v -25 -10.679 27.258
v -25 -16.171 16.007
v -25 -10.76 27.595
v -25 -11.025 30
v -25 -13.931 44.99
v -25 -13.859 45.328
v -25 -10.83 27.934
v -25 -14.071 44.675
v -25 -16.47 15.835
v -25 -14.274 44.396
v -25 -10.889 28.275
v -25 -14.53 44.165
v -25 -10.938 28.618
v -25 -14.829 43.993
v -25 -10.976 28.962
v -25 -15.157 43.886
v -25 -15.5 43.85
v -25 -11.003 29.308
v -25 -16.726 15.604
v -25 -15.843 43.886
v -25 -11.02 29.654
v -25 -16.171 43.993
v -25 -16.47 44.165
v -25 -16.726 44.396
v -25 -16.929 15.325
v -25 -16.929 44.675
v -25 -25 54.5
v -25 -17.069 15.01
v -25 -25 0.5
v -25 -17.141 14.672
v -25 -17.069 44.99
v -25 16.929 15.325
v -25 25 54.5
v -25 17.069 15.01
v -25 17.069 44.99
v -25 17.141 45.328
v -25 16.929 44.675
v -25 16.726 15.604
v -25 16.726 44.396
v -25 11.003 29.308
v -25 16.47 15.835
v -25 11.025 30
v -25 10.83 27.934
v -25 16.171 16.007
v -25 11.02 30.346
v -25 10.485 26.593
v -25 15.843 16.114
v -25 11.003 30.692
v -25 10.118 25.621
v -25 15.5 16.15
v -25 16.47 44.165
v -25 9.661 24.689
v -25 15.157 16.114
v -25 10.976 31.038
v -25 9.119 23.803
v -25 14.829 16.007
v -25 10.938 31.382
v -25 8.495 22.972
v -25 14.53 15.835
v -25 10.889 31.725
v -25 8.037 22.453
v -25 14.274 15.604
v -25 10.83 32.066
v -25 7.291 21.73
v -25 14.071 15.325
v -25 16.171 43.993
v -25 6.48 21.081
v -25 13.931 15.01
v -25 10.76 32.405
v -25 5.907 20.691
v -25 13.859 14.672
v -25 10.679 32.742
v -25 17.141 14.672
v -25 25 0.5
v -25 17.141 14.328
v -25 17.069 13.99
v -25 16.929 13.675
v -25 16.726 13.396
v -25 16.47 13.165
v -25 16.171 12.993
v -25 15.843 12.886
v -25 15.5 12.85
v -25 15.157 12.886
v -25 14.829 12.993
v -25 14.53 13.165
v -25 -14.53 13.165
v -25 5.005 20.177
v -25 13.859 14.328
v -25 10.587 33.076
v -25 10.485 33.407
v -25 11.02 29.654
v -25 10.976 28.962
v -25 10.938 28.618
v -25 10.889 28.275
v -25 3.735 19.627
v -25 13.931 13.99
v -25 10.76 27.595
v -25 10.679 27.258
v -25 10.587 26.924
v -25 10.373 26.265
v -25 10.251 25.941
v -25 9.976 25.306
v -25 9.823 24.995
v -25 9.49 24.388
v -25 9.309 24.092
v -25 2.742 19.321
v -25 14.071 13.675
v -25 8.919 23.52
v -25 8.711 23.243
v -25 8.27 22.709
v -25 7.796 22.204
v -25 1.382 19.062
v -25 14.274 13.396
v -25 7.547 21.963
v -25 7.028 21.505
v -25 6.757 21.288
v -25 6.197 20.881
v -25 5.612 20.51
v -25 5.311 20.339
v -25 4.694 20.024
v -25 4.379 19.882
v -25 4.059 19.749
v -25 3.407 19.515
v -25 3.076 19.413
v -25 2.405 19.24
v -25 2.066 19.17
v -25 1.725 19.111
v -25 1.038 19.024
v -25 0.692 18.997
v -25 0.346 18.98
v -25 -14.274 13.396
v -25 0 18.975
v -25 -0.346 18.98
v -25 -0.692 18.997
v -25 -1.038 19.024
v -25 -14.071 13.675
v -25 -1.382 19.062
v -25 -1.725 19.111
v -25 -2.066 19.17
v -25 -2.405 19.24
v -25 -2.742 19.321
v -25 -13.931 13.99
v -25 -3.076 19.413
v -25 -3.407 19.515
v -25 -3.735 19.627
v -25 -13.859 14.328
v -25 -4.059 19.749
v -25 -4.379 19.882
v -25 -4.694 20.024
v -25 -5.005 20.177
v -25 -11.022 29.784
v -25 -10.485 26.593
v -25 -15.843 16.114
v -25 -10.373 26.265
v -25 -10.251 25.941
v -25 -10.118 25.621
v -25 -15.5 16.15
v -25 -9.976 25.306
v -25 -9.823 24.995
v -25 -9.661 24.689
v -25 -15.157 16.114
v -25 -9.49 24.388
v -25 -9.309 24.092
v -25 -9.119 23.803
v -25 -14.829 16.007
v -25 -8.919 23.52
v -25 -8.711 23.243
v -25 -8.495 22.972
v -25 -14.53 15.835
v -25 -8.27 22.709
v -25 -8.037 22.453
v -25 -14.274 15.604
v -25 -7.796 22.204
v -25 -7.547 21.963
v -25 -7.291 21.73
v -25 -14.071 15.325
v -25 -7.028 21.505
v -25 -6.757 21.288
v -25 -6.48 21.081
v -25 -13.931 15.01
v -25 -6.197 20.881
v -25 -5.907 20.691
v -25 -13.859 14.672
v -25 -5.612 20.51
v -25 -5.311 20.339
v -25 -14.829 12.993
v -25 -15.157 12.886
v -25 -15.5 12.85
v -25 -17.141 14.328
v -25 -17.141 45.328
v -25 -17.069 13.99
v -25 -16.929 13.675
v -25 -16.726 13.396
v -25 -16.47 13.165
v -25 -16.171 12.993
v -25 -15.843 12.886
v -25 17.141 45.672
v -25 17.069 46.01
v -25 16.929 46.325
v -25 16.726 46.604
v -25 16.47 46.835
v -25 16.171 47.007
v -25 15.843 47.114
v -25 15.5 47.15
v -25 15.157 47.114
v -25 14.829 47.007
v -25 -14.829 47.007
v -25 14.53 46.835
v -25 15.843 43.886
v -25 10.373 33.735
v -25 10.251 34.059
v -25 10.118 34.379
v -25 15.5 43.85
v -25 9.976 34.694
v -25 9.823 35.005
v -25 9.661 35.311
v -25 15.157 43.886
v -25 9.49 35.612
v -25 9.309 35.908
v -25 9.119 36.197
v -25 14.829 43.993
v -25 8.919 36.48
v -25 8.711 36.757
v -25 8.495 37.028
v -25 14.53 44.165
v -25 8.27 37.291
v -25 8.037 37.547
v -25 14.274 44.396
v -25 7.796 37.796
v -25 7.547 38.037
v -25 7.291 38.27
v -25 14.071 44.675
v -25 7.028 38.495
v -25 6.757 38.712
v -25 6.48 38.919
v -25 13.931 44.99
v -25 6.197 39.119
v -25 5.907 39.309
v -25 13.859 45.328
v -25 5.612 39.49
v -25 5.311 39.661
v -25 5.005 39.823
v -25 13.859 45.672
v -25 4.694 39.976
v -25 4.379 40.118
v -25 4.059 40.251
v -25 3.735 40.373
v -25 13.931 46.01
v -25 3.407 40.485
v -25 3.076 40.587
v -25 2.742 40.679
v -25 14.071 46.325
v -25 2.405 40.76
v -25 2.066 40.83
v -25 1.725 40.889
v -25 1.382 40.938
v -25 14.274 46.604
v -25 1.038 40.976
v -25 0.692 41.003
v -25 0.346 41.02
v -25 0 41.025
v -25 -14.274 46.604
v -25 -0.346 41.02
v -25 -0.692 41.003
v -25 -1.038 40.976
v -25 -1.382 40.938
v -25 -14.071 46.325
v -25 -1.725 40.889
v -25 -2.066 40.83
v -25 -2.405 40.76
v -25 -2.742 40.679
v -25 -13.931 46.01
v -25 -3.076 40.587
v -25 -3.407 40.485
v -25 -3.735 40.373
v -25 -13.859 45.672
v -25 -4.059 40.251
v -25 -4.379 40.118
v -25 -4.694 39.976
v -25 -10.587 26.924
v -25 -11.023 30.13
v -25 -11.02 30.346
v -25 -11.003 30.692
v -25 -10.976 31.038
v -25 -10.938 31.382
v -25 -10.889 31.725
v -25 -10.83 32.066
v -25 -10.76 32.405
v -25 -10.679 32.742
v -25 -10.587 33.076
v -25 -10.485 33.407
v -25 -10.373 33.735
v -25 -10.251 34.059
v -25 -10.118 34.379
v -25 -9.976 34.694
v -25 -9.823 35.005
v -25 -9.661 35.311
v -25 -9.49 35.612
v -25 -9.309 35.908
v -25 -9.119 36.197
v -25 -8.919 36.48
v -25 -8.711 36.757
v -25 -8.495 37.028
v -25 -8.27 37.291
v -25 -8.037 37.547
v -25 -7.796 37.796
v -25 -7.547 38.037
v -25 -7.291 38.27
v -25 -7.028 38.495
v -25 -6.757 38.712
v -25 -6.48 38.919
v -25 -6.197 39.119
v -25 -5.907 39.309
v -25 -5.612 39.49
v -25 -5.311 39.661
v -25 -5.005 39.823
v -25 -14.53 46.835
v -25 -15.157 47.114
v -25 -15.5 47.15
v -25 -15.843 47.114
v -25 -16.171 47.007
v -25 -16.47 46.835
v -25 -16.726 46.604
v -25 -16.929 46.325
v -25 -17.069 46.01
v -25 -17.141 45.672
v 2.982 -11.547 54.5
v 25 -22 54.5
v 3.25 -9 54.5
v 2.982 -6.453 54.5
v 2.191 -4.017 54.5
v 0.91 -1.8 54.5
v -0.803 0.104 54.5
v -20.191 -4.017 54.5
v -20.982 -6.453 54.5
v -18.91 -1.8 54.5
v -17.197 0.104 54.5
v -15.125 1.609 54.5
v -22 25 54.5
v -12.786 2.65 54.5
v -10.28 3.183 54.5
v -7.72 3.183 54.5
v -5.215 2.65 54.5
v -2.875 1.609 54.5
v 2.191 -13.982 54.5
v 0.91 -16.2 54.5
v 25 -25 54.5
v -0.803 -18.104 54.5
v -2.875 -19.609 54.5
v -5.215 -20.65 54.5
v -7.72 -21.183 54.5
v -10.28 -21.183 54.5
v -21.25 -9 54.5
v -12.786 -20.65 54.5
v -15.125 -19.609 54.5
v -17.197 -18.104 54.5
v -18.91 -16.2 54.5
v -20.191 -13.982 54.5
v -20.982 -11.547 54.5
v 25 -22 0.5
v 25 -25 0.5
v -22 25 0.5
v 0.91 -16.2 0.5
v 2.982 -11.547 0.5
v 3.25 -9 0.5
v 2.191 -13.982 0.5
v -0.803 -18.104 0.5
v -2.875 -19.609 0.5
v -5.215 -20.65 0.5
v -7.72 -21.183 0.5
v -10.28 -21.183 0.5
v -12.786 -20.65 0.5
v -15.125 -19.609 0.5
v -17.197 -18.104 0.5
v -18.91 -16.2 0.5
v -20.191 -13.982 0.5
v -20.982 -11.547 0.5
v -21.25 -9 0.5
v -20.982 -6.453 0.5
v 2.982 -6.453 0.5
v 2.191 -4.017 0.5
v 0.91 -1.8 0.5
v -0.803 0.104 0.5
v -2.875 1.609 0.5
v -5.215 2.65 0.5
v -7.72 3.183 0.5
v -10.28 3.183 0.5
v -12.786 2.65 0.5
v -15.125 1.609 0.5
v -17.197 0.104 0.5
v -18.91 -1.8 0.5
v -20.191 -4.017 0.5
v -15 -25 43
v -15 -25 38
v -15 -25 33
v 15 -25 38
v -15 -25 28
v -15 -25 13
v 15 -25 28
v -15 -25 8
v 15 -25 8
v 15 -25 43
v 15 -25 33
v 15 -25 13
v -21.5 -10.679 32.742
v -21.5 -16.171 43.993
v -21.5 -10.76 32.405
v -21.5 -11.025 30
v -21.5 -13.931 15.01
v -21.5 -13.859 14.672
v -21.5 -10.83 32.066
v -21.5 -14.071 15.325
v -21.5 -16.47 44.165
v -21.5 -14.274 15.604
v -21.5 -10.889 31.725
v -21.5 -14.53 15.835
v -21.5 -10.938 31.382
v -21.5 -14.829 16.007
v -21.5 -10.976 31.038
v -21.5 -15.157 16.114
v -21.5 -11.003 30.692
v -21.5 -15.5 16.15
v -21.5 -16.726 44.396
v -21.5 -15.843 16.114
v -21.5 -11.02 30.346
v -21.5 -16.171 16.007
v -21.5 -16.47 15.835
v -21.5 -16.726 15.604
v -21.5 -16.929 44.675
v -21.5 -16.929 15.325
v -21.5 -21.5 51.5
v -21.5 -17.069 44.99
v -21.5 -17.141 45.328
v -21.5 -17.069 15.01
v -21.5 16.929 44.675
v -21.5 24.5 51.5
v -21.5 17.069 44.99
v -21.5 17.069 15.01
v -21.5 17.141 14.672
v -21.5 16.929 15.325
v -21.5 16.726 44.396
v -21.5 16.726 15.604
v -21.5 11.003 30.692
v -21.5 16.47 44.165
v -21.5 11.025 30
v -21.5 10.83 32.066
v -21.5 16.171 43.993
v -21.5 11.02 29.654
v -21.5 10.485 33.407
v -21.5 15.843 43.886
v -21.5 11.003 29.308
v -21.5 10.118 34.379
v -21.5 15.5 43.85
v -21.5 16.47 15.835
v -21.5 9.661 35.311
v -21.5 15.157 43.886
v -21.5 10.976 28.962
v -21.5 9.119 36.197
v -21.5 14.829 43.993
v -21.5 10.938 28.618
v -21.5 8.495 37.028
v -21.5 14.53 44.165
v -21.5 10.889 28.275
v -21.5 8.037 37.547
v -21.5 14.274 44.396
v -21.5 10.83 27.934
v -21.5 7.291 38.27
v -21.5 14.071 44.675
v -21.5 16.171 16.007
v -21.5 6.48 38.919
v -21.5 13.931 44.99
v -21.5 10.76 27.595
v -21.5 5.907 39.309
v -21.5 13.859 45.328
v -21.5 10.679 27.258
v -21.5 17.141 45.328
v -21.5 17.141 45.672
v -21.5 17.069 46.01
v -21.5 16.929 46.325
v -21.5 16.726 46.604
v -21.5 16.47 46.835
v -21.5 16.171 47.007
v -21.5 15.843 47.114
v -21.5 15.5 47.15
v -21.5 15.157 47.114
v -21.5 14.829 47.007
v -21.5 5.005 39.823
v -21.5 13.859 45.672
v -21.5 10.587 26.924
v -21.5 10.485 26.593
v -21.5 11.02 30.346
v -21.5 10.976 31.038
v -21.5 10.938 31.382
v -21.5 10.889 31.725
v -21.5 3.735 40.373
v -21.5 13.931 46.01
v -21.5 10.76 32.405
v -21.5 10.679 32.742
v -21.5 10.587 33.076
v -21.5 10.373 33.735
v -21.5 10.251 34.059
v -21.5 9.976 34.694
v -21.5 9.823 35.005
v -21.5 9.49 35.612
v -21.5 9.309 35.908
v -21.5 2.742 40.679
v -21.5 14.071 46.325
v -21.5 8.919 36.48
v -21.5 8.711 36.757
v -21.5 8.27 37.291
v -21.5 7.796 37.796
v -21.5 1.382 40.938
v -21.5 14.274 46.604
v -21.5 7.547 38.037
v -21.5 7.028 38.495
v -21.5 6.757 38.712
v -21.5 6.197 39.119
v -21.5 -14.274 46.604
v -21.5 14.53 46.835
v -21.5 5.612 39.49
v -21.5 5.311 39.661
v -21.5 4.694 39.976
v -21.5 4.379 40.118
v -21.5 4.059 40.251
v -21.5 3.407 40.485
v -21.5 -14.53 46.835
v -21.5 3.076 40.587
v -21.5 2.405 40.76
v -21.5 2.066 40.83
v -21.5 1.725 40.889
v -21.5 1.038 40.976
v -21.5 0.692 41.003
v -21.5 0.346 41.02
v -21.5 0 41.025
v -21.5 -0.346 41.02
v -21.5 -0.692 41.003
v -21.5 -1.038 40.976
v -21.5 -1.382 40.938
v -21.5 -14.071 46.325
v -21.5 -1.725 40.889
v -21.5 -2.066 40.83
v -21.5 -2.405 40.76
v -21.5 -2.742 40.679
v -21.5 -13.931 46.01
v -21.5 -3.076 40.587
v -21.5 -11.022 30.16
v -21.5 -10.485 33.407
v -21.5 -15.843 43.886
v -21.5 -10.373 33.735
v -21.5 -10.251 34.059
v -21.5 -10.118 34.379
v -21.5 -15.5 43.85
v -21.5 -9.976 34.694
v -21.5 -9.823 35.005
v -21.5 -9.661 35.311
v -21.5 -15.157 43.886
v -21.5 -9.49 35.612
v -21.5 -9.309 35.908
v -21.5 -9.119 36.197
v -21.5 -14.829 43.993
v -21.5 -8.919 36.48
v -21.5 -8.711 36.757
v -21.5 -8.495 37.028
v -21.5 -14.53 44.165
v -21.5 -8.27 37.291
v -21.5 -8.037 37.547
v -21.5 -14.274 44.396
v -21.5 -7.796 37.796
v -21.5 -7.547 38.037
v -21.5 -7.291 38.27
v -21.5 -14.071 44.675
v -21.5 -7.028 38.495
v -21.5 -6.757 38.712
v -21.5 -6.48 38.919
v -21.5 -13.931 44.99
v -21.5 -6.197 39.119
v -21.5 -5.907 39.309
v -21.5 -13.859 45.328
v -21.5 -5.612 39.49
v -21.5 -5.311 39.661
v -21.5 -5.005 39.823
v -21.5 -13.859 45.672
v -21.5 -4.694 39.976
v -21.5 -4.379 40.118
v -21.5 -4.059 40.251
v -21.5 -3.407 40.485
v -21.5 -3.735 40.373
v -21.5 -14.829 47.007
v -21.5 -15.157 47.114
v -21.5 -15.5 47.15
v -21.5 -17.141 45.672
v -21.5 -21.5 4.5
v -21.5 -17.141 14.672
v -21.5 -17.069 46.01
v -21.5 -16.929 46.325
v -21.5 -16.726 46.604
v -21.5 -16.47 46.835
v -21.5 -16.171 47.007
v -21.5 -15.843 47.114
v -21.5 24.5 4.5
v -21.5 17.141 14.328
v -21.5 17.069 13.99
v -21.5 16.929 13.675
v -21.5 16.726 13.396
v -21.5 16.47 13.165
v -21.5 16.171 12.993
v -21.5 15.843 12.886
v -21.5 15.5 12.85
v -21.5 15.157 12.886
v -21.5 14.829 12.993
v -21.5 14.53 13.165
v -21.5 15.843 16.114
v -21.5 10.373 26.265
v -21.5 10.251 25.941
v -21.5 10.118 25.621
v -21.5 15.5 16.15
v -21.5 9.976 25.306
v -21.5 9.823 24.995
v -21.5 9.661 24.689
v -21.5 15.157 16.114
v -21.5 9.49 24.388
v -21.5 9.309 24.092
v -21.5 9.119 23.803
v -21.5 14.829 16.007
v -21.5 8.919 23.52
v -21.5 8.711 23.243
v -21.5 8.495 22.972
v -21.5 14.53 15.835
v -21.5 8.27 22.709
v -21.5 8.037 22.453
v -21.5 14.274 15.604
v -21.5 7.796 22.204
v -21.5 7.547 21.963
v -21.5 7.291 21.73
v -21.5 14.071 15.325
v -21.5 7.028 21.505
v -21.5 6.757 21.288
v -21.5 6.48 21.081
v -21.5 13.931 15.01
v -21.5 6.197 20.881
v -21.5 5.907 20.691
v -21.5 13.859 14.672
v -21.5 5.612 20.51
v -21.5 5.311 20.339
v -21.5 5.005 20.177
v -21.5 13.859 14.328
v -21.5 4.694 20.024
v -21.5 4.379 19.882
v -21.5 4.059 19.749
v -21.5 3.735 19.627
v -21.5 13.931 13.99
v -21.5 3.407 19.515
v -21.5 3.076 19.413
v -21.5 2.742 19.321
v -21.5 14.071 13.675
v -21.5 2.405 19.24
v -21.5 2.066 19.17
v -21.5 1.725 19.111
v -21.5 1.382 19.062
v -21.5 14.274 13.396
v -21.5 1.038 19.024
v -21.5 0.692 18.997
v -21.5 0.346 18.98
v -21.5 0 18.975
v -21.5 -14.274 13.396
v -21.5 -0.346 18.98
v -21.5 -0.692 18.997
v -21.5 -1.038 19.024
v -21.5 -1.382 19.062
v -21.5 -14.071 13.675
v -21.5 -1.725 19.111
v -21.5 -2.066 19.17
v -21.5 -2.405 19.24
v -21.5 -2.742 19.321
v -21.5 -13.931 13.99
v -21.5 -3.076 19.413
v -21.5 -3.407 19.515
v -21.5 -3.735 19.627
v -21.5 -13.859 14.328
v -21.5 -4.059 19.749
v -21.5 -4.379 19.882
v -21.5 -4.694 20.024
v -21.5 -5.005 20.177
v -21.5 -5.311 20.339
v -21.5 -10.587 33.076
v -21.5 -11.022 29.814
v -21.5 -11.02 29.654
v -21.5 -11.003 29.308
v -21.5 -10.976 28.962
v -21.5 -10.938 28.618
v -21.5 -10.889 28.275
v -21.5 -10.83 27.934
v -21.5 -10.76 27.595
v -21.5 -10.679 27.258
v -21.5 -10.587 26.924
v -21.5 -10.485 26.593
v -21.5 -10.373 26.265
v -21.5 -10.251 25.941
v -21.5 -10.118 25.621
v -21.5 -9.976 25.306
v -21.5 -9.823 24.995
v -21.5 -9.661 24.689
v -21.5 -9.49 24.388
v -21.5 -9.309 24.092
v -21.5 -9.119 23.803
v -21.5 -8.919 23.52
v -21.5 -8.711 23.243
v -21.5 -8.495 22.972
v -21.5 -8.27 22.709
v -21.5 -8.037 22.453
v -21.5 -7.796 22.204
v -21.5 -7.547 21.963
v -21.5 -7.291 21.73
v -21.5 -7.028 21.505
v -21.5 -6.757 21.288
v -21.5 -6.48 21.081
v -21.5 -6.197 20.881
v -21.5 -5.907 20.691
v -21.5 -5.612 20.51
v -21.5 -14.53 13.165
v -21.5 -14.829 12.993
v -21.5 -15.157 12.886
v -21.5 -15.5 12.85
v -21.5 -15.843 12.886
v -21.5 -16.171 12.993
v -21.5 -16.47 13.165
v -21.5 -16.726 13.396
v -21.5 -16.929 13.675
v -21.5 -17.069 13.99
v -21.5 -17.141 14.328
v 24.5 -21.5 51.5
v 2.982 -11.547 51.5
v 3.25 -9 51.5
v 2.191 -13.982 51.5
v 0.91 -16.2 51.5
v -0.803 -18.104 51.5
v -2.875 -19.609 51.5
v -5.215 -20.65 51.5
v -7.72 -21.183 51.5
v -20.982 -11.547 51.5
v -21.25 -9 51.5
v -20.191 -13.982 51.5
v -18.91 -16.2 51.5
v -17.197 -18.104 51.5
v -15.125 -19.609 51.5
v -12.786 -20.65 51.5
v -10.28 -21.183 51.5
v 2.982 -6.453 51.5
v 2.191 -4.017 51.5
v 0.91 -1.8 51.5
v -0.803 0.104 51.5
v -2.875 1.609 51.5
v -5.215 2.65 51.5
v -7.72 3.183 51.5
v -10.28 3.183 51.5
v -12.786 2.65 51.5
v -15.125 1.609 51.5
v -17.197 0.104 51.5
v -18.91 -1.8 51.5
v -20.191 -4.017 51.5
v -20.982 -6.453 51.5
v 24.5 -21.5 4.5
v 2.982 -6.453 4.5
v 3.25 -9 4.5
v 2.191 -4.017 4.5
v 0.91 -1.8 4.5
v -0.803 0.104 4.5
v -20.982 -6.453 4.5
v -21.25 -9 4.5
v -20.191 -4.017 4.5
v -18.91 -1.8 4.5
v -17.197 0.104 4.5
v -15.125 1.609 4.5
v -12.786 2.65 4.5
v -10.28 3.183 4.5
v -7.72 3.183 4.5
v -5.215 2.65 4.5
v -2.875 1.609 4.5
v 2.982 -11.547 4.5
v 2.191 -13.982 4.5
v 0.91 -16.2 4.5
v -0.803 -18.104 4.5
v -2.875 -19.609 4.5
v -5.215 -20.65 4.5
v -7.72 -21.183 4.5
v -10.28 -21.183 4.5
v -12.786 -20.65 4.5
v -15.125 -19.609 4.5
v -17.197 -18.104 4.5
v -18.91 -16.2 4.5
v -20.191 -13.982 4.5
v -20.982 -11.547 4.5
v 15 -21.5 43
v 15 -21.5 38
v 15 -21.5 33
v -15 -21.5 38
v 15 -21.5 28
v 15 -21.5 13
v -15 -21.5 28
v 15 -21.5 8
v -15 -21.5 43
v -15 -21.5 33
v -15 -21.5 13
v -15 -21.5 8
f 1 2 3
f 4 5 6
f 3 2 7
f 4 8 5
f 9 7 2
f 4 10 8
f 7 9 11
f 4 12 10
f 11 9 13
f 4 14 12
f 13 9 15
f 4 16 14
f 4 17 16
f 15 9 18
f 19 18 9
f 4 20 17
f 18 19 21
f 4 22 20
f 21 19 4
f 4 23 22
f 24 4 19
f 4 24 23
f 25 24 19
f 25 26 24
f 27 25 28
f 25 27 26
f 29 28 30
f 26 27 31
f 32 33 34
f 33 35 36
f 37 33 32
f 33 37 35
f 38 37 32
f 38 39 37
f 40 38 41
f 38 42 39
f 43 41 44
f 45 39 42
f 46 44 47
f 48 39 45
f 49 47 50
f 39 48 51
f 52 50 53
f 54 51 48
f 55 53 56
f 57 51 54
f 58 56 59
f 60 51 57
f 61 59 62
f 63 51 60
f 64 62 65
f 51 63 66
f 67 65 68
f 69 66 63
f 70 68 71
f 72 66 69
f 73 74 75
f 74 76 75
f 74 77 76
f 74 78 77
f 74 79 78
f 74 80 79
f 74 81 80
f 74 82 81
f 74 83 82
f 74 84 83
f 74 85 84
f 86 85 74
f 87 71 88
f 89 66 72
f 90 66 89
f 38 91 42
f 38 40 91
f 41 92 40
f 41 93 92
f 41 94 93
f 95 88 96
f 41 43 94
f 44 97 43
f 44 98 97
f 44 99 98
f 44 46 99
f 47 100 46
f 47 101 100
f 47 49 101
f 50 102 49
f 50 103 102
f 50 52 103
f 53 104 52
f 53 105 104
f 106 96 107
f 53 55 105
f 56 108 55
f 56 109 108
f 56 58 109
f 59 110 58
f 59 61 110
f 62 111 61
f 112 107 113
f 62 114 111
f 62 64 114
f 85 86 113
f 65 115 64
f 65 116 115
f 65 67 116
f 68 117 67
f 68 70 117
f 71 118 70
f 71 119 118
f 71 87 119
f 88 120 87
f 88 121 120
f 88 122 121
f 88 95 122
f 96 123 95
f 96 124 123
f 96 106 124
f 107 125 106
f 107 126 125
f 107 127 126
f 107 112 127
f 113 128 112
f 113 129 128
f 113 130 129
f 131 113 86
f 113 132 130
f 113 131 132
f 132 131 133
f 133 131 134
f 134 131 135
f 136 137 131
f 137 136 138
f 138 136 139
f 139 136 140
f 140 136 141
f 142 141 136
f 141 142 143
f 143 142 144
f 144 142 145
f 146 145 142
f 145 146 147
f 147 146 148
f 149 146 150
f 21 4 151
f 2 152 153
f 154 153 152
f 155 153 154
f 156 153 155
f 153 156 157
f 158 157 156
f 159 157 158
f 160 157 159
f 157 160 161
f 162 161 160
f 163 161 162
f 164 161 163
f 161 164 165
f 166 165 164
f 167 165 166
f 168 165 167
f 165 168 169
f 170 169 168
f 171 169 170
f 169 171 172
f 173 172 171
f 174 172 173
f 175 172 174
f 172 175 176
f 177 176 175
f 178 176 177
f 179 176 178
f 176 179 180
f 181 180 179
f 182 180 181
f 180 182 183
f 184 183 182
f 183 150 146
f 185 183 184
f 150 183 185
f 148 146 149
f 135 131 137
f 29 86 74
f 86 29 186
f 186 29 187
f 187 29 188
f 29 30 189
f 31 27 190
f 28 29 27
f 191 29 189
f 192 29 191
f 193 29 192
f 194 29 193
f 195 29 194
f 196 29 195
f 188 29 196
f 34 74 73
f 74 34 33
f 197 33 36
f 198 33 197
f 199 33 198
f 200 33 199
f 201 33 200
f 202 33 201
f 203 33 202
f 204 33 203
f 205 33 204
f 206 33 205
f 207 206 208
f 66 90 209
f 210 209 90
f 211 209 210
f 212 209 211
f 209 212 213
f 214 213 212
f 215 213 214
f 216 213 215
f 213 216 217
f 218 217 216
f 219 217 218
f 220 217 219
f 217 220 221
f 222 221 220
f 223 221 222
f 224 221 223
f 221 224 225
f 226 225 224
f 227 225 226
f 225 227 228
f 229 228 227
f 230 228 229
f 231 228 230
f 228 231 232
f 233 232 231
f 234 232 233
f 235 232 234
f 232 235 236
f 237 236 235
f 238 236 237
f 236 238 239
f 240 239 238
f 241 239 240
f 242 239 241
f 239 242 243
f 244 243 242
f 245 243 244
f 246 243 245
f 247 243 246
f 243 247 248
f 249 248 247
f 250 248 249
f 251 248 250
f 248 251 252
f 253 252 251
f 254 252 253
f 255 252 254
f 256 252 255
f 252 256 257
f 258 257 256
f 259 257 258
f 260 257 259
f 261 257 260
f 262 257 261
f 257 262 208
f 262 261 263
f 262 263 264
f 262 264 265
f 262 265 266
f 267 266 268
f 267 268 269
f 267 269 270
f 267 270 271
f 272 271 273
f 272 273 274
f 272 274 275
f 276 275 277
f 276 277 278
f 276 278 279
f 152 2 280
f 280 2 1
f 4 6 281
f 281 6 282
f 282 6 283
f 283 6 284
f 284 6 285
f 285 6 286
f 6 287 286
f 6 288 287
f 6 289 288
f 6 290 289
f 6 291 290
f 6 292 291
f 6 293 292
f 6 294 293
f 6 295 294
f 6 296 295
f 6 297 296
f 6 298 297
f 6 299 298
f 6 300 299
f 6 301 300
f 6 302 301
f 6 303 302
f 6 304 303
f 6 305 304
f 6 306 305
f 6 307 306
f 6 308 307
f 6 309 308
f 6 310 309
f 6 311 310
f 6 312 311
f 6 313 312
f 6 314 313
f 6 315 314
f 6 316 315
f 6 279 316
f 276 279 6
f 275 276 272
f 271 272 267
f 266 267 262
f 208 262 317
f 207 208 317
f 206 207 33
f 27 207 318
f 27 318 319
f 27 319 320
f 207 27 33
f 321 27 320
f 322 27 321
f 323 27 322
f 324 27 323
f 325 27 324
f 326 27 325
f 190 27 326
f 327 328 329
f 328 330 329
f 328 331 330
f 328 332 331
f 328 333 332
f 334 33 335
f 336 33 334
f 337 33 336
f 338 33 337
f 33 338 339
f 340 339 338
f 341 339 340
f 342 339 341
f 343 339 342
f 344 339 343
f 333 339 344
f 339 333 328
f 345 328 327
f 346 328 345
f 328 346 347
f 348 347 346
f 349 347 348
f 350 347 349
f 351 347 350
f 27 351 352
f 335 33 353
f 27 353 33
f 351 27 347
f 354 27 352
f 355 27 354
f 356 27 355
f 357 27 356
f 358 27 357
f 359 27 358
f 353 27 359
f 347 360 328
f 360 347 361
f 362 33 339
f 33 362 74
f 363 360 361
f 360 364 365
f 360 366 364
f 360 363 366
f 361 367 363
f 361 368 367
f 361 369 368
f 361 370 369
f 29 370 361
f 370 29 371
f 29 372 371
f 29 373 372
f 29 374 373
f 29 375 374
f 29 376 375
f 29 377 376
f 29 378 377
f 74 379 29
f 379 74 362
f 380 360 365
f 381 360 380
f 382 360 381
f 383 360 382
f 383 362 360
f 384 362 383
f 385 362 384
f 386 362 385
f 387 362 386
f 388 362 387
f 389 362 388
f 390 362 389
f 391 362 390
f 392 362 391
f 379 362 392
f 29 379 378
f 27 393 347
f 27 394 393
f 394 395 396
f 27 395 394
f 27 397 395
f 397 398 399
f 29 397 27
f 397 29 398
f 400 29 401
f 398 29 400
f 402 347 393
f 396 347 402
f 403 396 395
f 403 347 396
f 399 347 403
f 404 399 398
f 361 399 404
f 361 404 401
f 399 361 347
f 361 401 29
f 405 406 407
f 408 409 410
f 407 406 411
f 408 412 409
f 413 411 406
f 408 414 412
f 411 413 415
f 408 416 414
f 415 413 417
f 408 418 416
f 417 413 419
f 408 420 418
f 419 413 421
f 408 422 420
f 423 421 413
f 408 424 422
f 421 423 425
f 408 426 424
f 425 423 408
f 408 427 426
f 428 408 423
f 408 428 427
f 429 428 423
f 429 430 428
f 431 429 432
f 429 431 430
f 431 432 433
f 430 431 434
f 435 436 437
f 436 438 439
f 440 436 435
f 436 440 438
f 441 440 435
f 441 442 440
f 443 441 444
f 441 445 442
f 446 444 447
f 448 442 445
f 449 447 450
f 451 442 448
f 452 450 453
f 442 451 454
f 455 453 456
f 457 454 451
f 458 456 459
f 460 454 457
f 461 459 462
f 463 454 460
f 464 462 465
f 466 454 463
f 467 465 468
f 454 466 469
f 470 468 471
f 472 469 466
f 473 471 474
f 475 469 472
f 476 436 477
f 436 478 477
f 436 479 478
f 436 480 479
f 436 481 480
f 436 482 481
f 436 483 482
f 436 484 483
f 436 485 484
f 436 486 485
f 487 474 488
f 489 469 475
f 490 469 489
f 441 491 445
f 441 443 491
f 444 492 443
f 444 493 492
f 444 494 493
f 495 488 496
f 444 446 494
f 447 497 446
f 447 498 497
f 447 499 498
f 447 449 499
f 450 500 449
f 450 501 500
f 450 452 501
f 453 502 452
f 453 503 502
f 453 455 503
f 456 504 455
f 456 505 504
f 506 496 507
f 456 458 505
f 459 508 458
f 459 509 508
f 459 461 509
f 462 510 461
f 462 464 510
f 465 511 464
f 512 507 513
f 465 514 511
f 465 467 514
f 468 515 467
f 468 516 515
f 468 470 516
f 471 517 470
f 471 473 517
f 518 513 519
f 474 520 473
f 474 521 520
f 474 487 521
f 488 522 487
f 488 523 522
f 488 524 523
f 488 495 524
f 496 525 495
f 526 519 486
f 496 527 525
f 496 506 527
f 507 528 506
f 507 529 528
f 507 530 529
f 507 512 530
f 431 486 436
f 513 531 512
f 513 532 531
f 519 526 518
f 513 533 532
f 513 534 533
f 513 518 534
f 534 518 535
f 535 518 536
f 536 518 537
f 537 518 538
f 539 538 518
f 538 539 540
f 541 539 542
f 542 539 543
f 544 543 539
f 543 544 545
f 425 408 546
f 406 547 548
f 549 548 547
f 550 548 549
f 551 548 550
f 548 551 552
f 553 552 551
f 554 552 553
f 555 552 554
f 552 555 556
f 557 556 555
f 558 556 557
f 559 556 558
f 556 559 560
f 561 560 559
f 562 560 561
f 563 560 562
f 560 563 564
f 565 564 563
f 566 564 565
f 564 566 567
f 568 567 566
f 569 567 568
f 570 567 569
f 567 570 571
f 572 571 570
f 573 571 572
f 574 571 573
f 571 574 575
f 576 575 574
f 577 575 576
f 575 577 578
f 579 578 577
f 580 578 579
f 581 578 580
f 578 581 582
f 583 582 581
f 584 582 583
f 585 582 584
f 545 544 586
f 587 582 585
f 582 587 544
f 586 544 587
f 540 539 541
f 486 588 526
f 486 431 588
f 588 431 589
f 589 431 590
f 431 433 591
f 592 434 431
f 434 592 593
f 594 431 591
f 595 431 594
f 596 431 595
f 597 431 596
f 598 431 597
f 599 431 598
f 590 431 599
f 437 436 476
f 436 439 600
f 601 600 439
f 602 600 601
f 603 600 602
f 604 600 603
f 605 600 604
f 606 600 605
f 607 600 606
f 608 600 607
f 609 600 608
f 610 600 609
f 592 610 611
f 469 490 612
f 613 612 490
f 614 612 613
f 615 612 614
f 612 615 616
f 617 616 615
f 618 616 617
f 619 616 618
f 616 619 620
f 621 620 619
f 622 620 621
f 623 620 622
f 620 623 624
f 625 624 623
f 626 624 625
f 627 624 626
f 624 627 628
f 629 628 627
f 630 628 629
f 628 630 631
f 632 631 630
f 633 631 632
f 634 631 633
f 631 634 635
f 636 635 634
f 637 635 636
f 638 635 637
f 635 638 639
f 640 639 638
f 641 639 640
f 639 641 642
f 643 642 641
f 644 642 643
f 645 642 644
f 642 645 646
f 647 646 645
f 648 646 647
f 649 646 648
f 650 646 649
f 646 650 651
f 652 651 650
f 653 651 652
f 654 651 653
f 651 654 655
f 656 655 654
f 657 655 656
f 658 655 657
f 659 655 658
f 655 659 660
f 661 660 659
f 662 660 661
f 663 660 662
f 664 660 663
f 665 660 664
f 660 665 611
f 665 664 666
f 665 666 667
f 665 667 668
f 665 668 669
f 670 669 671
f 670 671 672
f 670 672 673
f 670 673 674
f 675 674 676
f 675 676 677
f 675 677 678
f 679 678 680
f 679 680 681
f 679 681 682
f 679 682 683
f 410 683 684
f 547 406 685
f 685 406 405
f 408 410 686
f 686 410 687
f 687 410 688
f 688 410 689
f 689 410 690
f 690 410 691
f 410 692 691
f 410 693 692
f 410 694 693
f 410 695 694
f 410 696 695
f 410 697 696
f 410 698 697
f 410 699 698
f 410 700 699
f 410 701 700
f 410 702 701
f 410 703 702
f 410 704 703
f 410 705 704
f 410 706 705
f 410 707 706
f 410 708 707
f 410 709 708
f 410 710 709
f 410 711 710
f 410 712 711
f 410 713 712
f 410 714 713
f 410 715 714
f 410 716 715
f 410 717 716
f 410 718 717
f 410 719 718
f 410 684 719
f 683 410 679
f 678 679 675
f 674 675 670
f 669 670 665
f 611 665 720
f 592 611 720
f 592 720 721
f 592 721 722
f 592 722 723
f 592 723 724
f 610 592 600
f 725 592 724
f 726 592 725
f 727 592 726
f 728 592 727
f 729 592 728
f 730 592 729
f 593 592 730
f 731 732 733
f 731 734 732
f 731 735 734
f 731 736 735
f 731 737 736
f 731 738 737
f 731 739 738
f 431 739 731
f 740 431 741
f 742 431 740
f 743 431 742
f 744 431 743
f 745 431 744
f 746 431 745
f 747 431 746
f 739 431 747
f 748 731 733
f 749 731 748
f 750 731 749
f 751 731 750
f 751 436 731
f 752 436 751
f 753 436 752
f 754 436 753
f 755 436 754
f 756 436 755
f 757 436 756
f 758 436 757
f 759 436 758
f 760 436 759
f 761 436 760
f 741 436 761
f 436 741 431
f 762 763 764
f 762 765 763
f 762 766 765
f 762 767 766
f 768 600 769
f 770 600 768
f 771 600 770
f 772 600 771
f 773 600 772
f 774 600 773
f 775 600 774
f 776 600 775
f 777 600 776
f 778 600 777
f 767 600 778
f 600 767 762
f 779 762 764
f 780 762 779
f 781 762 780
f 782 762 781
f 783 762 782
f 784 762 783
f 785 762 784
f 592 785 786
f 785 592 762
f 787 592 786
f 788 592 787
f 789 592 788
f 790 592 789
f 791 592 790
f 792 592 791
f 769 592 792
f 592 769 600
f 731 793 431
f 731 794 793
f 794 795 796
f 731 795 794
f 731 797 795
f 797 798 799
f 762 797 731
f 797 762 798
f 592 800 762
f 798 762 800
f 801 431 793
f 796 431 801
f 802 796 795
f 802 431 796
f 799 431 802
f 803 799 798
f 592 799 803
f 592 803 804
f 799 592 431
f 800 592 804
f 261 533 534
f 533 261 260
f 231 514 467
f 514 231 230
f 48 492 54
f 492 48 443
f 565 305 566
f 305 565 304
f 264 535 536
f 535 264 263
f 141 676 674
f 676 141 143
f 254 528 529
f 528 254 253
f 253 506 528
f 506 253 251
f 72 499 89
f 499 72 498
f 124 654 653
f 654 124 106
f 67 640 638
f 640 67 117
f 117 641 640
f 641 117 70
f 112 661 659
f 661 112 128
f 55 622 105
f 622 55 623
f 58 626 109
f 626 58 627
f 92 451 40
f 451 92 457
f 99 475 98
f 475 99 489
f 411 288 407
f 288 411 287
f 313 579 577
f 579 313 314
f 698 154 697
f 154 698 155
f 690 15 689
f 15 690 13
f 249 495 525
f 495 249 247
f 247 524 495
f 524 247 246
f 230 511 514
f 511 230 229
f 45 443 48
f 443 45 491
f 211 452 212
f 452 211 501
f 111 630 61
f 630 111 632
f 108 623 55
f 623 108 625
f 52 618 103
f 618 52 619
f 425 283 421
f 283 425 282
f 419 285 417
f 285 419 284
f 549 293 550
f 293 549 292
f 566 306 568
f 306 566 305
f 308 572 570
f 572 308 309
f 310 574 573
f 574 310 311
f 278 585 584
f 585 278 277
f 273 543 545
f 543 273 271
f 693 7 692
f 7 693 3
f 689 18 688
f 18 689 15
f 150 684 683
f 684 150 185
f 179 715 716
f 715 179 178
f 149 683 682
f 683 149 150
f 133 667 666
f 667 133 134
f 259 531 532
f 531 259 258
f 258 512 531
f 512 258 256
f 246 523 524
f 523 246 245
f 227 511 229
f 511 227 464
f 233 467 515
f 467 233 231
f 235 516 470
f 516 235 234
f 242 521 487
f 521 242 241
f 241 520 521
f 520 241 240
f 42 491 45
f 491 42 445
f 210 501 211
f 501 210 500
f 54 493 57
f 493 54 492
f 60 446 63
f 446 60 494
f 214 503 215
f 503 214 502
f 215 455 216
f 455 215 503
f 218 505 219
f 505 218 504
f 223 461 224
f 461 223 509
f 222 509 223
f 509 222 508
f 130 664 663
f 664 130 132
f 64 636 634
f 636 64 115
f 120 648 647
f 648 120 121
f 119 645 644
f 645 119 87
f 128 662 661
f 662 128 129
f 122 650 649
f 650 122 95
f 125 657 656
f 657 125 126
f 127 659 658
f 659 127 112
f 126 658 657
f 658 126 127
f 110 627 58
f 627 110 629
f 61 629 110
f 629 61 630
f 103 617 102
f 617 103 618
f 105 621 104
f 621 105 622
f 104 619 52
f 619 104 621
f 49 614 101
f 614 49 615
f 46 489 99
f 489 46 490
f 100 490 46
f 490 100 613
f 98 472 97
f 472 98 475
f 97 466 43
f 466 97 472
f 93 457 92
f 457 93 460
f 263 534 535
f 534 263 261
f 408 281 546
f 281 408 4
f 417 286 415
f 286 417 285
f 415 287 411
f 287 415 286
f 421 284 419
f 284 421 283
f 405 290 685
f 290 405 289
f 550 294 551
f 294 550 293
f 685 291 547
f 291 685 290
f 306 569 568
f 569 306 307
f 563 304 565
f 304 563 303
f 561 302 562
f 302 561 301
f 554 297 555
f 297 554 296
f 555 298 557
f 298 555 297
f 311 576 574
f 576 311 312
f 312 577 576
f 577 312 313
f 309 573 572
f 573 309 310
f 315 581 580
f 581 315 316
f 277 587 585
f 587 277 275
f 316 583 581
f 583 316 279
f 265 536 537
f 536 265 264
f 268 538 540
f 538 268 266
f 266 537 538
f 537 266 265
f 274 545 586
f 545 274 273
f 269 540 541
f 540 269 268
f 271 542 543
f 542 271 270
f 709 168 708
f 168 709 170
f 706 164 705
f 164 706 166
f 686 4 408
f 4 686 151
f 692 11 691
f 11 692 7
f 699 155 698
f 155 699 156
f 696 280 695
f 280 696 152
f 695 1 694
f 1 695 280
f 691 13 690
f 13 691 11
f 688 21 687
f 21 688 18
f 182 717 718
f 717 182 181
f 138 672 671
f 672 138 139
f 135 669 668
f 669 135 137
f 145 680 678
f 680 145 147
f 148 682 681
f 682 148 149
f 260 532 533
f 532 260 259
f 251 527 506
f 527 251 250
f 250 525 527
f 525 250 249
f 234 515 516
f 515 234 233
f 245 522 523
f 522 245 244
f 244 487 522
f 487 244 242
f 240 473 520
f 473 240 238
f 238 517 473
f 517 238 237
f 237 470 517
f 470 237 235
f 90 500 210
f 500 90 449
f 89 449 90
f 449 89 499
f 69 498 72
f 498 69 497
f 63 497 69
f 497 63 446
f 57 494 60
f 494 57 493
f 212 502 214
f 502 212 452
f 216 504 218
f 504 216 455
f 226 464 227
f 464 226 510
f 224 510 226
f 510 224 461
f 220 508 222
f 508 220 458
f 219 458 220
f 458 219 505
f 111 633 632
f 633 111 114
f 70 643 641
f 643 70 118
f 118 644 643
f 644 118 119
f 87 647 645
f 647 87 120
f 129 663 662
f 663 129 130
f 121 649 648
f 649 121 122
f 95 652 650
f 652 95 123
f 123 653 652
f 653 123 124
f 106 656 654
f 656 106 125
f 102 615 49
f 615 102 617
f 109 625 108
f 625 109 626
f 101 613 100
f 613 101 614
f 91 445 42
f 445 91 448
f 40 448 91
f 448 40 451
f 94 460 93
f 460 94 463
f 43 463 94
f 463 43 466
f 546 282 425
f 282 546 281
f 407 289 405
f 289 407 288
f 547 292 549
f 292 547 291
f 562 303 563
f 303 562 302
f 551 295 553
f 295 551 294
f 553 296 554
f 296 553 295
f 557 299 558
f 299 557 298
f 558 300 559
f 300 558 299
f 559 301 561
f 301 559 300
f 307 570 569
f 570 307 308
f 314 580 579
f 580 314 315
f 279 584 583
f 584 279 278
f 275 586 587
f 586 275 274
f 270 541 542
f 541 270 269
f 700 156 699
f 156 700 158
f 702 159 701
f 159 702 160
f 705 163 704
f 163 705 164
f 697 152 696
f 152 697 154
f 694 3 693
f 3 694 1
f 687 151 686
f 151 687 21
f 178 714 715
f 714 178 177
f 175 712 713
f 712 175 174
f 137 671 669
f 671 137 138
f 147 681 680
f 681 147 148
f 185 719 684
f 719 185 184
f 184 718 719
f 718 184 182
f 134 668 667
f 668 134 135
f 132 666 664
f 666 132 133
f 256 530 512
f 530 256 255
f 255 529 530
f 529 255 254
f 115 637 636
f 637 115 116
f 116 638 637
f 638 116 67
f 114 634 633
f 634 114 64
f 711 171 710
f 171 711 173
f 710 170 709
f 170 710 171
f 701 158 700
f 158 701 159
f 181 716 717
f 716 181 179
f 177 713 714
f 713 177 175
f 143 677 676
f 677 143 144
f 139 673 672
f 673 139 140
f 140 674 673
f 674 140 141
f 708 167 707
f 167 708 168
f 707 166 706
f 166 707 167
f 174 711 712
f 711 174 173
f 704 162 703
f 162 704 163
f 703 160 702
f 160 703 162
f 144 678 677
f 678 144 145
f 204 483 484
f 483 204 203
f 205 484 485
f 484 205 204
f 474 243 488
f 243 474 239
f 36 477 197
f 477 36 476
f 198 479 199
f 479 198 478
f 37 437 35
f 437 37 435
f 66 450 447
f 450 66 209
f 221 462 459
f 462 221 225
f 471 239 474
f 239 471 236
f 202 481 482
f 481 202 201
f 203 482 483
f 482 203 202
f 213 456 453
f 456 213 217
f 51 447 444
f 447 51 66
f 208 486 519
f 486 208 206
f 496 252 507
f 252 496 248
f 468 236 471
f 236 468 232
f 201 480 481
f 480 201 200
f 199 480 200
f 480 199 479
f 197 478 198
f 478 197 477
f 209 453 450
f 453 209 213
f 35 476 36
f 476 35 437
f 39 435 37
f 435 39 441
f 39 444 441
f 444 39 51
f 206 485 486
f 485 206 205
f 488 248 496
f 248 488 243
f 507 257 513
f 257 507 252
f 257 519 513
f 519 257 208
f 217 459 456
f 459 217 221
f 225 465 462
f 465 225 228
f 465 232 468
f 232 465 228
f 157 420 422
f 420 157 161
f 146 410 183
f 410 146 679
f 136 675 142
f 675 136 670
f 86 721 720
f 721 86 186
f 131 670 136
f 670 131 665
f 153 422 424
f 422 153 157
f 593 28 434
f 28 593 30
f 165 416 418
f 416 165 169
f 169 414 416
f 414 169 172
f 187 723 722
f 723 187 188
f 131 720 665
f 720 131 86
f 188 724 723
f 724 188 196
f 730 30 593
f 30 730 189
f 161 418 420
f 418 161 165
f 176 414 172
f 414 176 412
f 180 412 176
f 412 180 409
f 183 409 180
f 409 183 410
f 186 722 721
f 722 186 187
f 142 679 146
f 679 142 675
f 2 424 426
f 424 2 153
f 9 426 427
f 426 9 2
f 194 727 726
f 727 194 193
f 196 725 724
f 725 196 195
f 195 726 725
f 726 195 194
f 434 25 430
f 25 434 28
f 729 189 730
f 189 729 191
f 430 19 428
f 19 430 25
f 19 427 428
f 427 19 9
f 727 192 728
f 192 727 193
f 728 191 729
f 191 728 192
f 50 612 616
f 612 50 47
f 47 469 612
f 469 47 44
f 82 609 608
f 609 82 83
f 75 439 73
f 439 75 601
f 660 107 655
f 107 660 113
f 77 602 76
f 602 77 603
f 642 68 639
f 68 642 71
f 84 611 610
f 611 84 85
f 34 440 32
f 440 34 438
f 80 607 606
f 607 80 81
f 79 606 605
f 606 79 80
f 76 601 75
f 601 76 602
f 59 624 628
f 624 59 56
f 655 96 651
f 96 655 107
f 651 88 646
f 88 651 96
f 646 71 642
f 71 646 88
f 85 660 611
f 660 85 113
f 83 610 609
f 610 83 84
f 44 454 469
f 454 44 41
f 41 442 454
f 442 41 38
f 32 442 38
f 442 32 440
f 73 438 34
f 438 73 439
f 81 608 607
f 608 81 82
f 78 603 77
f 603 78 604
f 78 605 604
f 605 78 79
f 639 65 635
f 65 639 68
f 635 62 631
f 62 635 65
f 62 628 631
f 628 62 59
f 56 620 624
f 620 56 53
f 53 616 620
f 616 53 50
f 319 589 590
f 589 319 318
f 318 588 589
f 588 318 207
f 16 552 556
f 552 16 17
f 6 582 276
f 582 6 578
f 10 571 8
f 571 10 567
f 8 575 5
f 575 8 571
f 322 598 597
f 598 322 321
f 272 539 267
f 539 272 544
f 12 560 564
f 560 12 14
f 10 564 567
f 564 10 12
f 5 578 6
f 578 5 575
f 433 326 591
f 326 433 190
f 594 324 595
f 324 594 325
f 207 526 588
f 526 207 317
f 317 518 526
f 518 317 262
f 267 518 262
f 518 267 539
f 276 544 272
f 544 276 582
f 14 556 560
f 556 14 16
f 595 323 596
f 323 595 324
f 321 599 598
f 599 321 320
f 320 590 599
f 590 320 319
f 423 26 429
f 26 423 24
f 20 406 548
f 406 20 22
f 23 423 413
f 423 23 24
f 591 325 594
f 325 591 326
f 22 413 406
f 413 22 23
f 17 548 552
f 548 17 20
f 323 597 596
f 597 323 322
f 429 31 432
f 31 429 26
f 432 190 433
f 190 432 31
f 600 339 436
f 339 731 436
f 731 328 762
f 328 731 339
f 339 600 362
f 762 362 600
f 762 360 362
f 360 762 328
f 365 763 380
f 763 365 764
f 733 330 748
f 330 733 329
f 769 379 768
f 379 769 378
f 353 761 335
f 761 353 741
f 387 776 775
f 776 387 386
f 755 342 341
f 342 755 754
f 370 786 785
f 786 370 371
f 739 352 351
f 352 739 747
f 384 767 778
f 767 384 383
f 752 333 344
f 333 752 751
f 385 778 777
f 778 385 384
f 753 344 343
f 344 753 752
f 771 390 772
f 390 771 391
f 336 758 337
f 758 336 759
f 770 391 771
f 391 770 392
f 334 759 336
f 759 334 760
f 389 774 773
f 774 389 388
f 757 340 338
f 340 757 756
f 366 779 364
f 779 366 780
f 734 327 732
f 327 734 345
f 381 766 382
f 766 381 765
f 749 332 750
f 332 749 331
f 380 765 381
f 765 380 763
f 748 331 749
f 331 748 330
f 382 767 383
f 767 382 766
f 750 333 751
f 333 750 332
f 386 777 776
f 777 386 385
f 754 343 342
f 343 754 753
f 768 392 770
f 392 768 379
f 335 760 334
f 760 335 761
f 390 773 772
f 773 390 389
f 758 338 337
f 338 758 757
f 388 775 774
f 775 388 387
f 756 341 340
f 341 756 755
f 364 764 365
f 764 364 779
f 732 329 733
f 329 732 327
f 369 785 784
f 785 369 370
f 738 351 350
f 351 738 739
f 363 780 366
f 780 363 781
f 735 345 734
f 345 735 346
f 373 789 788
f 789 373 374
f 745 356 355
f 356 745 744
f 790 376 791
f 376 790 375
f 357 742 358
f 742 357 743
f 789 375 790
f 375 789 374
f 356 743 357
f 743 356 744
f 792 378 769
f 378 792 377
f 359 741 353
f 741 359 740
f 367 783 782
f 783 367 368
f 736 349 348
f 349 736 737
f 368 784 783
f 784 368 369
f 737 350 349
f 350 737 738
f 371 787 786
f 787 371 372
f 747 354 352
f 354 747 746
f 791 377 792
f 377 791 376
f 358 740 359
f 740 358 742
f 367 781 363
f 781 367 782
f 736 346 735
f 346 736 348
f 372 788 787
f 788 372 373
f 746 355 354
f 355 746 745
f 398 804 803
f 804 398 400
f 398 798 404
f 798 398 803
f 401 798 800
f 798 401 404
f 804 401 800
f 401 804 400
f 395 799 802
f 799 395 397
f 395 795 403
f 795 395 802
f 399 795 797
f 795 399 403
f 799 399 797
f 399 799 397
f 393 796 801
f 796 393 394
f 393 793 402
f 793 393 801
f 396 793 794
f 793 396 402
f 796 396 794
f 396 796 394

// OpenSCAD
//the ugly "4" digits are for quick hack height compensation
shaft_center_height = 26+4;
nema_size = 43;

difference()
{
    //body
    translate([-25,-25,0.5])cube([50,50,50+4]);

    //nema 17 motor core
    translate([-nema_size/2,-nema_size/2,shaft_center_height-nema_size/2-4])cube([nema_size+20,nema_size+20,nema_size+4]);
    
    //nema 17 center
    translate([0,0,shaft_center_height])rotate([0,-90,0])cylinder(h=40, d=22.05, $fn=200);
    
    //nema 17 screws
    translate([0,31/2,shaft_center_height+31/2])rotate([0,-90,0])cylinder(h=60,d=3.3, $fn=30);
    translate([0,-31/2,shaft_center_height-31/2])rotate([0,-90,0])cylinder(h=60,d=3.3, $fn=30);
    translate([0,31/2,shaft_center_height-31/2])rotate([0,-90,0])cylinder(h=60,d=3.3, $fn=30);
    translate([0,-31/2,shaft_center_height+31/2])rotate([0,-90,0])cylinder(h=60,d=3.3, $fn=30);
    
    //side cut
    translate([28,-25,0])rotate([0,0,45])cube([100,100,70]);
    translate([-9,-9,0])cylinder(h=60,d=24.5);
    
    //holder screws
    translate([-15,-27,0.5+10-2.5])cube([30,10,5]);
    translate([-15,-27,0.5+10-2.5+20])cube([30,10,5]);
    translate([-15,-27,0.5+10-2.5+30])cube([30,10,5]);
}
